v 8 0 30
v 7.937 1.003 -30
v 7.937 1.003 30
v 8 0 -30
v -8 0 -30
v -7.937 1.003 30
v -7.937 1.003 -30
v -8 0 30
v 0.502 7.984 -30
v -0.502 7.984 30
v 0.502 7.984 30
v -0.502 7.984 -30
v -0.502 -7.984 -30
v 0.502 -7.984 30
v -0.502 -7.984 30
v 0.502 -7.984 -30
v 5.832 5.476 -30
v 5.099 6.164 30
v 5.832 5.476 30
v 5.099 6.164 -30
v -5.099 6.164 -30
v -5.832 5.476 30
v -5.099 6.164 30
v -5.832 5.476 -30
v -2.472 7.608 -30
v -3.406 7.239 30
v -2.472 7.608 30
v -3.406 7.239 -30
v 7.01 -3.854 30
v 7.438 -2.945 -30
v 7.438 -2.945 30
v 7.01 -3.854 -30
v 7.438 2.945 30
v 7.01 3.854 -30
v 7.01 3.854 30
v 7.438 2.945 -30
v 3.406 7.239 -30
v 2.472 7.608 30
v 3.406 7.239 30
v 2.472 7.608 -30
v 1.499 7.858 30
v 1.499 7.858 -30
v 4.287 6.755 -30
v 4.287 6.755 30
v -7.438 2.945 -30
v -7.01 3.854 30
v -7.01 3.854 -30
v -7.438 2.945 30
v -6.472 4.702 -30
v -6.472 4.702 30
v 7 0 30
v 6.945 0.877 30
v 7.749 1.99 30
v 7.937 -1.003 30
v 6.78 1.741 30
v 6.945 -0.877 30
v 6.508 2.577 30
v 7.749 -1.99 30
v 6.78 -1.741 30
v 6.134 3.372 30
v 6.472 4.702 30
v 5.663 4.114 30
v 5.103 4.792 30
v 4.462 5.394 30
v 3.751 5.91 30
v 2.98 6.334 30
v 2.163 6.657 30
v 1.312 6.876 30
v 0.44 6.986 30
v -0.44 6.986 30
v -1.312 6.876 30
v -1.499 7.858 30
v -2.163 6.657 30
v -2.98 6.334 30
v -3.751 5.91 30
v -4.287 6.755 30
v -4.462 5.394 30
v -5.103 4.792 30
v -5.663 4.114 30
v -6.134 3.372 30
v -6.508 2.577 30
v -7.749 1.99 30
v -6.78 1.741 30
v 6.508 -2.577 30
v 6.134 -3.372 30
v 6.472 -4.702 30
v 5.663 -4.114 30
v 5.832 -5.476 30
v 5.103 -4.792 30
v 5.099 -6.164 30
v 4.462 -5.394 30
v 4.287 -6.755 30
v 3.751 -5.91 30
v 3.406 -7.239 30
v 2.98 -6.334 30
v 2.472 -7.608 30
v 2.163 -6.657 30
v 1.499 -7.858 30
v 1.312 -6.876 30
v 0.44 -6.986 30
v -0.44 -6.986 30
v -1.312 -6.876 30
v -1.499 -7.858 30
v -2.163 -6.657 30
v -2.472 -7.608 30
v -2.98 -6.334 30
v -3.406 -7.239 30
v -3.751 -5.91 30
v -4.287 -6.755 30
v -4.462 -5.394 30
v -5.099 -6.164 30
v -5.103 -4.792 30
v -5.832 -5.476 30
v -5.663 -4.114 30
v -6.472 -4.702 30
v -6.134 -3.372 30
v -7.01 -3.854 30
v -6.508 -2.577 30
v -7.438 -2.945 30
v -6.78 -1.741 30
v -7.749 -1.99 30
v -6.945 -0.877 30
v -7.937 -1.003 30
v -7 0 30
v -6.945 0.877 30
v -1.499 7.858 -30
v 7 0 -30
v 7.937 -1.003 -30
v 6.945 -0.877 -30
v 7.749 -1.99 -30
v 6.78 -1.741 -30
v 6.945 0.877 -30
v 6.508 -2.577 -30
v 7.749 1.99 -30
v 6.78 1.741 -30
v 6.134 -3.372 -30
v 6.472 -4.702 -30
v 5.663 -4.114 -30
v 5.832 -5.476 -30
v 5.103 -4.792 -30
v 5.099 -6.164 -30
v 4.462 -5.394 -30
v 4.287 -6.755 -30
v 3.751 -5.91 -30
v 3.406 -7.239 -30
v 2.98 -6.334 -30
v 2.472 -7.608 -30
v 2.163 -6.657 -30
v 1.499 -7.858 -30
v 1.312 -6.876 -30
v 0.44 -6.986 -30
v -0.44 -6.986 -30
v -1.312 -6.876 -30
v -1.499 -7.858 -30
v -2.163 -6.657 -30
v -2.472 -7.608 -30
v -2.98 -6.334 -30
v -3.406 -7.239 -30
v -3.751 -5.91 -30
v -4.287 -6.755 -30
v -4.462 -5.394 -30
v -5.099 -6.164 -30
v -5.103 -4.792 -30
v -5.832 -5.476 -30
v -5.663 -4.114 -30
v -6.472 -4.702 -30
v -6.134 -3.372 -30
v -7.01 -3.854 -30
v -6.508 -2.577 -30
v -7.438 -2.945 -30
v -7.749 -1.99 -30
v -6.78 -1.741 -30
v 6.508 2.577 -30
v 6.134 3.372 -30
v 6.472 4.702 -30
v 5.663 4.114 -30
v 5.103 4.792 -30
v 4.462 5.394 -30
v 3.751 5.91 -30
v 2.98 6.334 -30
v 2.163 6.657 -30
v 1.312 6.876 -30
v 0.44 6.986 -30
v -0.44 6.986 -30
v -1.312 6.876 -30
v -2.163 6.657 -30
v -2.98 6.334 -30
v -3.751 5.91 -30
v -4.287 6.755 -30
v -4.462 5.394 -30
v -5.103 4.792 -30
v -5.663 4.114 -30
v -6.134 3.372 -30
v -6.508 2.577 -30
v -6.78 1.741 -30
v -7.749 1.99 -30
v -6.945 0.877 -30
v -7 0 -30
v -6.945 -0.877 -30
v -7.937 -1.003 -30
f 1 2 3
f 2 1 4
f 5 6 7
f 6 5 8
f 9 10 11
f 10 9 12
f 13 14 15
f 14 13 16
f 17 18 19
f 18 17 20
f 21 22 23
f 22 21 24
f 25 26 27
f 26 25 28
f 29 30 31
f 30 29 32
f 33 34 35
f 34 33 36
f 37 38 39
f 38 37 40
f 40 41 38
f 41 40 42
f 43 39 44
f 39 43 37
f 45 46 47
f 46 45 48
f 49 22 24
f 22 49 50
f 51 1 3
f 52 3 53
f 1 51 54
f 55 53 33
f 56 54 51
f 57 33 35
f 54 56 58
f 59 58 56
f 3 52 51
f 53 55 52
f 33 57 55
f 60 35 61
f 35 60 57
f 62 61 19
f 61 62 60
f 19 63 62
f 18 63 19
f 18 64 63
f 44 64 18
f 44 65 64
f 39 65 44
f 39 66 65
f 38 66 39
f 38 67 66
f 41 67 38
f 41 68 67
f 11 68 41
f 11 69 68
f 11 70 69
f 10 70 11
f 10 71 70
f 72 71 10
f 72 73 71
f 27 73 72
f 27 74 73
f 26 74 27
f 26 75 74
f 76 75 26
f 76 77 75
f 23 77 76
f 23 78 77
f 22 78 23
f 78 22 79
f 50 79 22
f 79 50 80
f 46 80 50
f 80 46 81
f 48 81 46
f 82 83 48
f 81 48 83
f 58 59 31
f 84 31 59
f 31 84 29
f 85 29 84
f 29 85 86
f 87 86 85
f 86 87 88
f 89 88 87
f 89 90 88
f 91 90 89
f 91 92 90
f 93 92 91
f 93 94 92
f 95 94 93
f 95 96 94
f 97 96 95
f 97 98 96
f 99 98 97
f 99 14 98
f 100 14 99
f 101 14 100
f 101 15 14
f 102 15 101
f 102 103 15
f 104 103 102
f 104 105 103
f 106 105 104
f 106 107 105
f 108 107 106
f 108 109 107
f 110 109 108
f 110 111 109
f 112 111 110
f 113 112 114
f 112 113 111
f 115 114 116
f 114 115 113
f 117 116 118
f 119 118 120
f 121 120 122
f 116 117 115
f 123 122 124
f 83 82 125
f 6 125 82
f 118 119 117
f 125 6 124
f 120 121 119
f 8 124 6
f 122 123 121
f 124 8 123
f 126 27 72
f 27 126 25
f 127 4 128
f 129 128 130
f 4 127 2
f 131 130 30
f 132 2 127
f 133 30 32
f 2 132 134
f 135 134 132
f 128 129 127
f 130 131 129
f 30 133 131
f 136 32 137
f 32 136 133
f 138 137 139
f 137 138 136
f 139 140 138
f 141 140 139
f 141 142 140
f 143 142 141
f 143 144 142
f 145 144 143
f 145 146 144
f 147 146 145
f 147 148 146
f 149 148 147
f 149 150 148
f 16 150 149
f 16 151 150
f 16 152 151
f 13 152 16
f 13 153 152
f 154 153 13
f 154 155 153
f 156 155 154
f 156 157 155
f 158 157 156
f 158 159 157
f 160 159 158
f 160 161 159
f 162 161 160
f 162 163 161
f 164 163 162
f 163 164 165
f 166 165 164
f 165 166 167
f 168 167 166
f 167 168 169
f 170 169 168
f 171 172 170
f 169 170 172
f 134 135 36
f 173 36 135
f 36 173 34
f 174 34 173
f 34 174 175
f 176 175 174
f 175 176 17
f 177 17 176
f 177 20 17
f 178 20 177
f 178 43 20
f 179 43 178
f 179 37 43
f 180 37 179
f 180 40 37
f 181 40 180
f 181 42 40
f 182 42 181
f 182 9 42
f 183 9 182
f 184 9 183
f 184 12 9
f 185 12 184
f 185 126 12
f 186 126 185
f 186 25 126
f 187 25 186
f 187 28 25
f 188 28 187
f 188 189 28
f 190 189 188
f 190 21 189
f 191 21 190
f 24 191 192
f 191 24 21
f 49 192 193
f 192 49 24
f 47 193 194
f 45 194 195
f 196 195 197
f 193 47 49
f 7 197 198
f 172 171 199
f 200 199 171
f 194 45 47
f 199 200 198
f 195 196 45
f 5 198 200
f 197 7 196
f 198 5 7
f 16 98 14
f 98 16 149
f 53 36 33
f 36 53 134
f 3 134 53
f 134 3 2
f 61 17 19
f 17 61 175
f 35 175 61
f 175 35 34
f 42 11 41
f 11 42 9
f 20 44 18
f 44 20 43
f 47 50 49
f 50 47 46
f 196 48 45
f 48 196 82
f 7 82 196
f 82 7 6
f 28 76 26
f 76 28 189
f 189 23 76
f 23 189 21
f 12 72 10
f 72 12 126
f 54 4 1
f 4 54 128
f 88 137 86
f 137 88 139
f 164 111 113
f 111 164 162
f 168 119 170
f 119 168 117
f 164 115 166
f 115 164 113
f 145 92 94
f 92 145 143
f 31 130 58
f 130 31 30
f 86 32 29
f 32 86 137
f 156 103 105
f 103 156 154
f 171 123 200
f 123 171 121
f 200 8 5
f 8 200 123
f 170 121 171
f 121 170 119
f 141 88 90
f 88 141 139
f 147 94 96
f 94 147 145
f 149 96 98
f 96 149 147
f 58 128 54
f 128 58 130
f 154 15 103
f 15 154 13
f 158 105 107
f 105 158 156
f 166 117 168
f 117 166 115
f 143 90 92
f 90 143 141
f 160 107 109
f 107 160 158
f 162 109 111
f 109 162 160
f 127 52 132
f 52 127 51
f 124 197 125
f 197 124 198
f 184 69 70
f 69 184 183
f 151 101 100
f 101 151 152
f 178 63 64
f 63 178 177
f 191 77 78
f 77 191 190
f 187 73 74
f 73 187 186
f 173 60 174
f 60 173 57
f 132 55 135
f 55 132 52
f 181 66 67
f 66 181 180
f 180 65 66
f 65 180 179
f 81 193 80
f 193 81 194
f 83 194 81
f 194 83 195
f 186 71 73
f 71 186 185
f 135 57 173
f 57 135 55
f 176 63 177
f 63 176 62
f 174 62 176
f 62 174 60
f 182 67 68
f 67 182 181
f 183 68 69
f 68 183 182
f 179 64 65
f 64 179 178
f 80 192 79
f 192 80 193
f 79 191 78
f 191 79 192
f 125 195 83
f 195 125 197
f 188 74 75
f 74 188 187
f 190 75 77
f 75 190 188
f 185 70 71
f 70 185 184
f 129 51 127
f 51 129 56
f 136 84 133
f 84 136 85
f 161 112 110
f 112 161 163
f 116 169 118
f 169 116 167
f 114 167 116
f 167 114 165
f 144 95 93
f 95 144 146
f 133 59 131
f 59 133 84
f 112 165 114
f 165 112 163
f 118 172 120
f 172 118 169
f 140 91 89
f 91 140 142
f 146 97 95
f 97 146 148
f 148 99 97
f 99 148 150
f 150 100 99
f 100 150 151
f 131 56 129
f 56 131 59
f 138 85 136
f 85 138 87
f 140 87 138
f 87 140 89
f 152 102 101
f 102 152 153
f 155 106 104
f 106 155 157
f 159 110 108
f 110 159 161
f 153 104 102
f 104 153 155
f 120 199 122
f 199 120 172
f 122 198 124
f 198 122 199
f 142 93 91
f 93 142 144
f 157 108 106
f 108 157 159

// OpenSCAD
$fn = 50;


difference() {
	union() {
		translate(v = [0, 0, -30.0000000000]) {
			cylinder(h = 60, r = 8.0000000000);
		}
	}
	union() {
		translate(v = [0, 0, -100.0000000000]) {
			cylinder(h = 200, r = 7);
		}
	}
}
